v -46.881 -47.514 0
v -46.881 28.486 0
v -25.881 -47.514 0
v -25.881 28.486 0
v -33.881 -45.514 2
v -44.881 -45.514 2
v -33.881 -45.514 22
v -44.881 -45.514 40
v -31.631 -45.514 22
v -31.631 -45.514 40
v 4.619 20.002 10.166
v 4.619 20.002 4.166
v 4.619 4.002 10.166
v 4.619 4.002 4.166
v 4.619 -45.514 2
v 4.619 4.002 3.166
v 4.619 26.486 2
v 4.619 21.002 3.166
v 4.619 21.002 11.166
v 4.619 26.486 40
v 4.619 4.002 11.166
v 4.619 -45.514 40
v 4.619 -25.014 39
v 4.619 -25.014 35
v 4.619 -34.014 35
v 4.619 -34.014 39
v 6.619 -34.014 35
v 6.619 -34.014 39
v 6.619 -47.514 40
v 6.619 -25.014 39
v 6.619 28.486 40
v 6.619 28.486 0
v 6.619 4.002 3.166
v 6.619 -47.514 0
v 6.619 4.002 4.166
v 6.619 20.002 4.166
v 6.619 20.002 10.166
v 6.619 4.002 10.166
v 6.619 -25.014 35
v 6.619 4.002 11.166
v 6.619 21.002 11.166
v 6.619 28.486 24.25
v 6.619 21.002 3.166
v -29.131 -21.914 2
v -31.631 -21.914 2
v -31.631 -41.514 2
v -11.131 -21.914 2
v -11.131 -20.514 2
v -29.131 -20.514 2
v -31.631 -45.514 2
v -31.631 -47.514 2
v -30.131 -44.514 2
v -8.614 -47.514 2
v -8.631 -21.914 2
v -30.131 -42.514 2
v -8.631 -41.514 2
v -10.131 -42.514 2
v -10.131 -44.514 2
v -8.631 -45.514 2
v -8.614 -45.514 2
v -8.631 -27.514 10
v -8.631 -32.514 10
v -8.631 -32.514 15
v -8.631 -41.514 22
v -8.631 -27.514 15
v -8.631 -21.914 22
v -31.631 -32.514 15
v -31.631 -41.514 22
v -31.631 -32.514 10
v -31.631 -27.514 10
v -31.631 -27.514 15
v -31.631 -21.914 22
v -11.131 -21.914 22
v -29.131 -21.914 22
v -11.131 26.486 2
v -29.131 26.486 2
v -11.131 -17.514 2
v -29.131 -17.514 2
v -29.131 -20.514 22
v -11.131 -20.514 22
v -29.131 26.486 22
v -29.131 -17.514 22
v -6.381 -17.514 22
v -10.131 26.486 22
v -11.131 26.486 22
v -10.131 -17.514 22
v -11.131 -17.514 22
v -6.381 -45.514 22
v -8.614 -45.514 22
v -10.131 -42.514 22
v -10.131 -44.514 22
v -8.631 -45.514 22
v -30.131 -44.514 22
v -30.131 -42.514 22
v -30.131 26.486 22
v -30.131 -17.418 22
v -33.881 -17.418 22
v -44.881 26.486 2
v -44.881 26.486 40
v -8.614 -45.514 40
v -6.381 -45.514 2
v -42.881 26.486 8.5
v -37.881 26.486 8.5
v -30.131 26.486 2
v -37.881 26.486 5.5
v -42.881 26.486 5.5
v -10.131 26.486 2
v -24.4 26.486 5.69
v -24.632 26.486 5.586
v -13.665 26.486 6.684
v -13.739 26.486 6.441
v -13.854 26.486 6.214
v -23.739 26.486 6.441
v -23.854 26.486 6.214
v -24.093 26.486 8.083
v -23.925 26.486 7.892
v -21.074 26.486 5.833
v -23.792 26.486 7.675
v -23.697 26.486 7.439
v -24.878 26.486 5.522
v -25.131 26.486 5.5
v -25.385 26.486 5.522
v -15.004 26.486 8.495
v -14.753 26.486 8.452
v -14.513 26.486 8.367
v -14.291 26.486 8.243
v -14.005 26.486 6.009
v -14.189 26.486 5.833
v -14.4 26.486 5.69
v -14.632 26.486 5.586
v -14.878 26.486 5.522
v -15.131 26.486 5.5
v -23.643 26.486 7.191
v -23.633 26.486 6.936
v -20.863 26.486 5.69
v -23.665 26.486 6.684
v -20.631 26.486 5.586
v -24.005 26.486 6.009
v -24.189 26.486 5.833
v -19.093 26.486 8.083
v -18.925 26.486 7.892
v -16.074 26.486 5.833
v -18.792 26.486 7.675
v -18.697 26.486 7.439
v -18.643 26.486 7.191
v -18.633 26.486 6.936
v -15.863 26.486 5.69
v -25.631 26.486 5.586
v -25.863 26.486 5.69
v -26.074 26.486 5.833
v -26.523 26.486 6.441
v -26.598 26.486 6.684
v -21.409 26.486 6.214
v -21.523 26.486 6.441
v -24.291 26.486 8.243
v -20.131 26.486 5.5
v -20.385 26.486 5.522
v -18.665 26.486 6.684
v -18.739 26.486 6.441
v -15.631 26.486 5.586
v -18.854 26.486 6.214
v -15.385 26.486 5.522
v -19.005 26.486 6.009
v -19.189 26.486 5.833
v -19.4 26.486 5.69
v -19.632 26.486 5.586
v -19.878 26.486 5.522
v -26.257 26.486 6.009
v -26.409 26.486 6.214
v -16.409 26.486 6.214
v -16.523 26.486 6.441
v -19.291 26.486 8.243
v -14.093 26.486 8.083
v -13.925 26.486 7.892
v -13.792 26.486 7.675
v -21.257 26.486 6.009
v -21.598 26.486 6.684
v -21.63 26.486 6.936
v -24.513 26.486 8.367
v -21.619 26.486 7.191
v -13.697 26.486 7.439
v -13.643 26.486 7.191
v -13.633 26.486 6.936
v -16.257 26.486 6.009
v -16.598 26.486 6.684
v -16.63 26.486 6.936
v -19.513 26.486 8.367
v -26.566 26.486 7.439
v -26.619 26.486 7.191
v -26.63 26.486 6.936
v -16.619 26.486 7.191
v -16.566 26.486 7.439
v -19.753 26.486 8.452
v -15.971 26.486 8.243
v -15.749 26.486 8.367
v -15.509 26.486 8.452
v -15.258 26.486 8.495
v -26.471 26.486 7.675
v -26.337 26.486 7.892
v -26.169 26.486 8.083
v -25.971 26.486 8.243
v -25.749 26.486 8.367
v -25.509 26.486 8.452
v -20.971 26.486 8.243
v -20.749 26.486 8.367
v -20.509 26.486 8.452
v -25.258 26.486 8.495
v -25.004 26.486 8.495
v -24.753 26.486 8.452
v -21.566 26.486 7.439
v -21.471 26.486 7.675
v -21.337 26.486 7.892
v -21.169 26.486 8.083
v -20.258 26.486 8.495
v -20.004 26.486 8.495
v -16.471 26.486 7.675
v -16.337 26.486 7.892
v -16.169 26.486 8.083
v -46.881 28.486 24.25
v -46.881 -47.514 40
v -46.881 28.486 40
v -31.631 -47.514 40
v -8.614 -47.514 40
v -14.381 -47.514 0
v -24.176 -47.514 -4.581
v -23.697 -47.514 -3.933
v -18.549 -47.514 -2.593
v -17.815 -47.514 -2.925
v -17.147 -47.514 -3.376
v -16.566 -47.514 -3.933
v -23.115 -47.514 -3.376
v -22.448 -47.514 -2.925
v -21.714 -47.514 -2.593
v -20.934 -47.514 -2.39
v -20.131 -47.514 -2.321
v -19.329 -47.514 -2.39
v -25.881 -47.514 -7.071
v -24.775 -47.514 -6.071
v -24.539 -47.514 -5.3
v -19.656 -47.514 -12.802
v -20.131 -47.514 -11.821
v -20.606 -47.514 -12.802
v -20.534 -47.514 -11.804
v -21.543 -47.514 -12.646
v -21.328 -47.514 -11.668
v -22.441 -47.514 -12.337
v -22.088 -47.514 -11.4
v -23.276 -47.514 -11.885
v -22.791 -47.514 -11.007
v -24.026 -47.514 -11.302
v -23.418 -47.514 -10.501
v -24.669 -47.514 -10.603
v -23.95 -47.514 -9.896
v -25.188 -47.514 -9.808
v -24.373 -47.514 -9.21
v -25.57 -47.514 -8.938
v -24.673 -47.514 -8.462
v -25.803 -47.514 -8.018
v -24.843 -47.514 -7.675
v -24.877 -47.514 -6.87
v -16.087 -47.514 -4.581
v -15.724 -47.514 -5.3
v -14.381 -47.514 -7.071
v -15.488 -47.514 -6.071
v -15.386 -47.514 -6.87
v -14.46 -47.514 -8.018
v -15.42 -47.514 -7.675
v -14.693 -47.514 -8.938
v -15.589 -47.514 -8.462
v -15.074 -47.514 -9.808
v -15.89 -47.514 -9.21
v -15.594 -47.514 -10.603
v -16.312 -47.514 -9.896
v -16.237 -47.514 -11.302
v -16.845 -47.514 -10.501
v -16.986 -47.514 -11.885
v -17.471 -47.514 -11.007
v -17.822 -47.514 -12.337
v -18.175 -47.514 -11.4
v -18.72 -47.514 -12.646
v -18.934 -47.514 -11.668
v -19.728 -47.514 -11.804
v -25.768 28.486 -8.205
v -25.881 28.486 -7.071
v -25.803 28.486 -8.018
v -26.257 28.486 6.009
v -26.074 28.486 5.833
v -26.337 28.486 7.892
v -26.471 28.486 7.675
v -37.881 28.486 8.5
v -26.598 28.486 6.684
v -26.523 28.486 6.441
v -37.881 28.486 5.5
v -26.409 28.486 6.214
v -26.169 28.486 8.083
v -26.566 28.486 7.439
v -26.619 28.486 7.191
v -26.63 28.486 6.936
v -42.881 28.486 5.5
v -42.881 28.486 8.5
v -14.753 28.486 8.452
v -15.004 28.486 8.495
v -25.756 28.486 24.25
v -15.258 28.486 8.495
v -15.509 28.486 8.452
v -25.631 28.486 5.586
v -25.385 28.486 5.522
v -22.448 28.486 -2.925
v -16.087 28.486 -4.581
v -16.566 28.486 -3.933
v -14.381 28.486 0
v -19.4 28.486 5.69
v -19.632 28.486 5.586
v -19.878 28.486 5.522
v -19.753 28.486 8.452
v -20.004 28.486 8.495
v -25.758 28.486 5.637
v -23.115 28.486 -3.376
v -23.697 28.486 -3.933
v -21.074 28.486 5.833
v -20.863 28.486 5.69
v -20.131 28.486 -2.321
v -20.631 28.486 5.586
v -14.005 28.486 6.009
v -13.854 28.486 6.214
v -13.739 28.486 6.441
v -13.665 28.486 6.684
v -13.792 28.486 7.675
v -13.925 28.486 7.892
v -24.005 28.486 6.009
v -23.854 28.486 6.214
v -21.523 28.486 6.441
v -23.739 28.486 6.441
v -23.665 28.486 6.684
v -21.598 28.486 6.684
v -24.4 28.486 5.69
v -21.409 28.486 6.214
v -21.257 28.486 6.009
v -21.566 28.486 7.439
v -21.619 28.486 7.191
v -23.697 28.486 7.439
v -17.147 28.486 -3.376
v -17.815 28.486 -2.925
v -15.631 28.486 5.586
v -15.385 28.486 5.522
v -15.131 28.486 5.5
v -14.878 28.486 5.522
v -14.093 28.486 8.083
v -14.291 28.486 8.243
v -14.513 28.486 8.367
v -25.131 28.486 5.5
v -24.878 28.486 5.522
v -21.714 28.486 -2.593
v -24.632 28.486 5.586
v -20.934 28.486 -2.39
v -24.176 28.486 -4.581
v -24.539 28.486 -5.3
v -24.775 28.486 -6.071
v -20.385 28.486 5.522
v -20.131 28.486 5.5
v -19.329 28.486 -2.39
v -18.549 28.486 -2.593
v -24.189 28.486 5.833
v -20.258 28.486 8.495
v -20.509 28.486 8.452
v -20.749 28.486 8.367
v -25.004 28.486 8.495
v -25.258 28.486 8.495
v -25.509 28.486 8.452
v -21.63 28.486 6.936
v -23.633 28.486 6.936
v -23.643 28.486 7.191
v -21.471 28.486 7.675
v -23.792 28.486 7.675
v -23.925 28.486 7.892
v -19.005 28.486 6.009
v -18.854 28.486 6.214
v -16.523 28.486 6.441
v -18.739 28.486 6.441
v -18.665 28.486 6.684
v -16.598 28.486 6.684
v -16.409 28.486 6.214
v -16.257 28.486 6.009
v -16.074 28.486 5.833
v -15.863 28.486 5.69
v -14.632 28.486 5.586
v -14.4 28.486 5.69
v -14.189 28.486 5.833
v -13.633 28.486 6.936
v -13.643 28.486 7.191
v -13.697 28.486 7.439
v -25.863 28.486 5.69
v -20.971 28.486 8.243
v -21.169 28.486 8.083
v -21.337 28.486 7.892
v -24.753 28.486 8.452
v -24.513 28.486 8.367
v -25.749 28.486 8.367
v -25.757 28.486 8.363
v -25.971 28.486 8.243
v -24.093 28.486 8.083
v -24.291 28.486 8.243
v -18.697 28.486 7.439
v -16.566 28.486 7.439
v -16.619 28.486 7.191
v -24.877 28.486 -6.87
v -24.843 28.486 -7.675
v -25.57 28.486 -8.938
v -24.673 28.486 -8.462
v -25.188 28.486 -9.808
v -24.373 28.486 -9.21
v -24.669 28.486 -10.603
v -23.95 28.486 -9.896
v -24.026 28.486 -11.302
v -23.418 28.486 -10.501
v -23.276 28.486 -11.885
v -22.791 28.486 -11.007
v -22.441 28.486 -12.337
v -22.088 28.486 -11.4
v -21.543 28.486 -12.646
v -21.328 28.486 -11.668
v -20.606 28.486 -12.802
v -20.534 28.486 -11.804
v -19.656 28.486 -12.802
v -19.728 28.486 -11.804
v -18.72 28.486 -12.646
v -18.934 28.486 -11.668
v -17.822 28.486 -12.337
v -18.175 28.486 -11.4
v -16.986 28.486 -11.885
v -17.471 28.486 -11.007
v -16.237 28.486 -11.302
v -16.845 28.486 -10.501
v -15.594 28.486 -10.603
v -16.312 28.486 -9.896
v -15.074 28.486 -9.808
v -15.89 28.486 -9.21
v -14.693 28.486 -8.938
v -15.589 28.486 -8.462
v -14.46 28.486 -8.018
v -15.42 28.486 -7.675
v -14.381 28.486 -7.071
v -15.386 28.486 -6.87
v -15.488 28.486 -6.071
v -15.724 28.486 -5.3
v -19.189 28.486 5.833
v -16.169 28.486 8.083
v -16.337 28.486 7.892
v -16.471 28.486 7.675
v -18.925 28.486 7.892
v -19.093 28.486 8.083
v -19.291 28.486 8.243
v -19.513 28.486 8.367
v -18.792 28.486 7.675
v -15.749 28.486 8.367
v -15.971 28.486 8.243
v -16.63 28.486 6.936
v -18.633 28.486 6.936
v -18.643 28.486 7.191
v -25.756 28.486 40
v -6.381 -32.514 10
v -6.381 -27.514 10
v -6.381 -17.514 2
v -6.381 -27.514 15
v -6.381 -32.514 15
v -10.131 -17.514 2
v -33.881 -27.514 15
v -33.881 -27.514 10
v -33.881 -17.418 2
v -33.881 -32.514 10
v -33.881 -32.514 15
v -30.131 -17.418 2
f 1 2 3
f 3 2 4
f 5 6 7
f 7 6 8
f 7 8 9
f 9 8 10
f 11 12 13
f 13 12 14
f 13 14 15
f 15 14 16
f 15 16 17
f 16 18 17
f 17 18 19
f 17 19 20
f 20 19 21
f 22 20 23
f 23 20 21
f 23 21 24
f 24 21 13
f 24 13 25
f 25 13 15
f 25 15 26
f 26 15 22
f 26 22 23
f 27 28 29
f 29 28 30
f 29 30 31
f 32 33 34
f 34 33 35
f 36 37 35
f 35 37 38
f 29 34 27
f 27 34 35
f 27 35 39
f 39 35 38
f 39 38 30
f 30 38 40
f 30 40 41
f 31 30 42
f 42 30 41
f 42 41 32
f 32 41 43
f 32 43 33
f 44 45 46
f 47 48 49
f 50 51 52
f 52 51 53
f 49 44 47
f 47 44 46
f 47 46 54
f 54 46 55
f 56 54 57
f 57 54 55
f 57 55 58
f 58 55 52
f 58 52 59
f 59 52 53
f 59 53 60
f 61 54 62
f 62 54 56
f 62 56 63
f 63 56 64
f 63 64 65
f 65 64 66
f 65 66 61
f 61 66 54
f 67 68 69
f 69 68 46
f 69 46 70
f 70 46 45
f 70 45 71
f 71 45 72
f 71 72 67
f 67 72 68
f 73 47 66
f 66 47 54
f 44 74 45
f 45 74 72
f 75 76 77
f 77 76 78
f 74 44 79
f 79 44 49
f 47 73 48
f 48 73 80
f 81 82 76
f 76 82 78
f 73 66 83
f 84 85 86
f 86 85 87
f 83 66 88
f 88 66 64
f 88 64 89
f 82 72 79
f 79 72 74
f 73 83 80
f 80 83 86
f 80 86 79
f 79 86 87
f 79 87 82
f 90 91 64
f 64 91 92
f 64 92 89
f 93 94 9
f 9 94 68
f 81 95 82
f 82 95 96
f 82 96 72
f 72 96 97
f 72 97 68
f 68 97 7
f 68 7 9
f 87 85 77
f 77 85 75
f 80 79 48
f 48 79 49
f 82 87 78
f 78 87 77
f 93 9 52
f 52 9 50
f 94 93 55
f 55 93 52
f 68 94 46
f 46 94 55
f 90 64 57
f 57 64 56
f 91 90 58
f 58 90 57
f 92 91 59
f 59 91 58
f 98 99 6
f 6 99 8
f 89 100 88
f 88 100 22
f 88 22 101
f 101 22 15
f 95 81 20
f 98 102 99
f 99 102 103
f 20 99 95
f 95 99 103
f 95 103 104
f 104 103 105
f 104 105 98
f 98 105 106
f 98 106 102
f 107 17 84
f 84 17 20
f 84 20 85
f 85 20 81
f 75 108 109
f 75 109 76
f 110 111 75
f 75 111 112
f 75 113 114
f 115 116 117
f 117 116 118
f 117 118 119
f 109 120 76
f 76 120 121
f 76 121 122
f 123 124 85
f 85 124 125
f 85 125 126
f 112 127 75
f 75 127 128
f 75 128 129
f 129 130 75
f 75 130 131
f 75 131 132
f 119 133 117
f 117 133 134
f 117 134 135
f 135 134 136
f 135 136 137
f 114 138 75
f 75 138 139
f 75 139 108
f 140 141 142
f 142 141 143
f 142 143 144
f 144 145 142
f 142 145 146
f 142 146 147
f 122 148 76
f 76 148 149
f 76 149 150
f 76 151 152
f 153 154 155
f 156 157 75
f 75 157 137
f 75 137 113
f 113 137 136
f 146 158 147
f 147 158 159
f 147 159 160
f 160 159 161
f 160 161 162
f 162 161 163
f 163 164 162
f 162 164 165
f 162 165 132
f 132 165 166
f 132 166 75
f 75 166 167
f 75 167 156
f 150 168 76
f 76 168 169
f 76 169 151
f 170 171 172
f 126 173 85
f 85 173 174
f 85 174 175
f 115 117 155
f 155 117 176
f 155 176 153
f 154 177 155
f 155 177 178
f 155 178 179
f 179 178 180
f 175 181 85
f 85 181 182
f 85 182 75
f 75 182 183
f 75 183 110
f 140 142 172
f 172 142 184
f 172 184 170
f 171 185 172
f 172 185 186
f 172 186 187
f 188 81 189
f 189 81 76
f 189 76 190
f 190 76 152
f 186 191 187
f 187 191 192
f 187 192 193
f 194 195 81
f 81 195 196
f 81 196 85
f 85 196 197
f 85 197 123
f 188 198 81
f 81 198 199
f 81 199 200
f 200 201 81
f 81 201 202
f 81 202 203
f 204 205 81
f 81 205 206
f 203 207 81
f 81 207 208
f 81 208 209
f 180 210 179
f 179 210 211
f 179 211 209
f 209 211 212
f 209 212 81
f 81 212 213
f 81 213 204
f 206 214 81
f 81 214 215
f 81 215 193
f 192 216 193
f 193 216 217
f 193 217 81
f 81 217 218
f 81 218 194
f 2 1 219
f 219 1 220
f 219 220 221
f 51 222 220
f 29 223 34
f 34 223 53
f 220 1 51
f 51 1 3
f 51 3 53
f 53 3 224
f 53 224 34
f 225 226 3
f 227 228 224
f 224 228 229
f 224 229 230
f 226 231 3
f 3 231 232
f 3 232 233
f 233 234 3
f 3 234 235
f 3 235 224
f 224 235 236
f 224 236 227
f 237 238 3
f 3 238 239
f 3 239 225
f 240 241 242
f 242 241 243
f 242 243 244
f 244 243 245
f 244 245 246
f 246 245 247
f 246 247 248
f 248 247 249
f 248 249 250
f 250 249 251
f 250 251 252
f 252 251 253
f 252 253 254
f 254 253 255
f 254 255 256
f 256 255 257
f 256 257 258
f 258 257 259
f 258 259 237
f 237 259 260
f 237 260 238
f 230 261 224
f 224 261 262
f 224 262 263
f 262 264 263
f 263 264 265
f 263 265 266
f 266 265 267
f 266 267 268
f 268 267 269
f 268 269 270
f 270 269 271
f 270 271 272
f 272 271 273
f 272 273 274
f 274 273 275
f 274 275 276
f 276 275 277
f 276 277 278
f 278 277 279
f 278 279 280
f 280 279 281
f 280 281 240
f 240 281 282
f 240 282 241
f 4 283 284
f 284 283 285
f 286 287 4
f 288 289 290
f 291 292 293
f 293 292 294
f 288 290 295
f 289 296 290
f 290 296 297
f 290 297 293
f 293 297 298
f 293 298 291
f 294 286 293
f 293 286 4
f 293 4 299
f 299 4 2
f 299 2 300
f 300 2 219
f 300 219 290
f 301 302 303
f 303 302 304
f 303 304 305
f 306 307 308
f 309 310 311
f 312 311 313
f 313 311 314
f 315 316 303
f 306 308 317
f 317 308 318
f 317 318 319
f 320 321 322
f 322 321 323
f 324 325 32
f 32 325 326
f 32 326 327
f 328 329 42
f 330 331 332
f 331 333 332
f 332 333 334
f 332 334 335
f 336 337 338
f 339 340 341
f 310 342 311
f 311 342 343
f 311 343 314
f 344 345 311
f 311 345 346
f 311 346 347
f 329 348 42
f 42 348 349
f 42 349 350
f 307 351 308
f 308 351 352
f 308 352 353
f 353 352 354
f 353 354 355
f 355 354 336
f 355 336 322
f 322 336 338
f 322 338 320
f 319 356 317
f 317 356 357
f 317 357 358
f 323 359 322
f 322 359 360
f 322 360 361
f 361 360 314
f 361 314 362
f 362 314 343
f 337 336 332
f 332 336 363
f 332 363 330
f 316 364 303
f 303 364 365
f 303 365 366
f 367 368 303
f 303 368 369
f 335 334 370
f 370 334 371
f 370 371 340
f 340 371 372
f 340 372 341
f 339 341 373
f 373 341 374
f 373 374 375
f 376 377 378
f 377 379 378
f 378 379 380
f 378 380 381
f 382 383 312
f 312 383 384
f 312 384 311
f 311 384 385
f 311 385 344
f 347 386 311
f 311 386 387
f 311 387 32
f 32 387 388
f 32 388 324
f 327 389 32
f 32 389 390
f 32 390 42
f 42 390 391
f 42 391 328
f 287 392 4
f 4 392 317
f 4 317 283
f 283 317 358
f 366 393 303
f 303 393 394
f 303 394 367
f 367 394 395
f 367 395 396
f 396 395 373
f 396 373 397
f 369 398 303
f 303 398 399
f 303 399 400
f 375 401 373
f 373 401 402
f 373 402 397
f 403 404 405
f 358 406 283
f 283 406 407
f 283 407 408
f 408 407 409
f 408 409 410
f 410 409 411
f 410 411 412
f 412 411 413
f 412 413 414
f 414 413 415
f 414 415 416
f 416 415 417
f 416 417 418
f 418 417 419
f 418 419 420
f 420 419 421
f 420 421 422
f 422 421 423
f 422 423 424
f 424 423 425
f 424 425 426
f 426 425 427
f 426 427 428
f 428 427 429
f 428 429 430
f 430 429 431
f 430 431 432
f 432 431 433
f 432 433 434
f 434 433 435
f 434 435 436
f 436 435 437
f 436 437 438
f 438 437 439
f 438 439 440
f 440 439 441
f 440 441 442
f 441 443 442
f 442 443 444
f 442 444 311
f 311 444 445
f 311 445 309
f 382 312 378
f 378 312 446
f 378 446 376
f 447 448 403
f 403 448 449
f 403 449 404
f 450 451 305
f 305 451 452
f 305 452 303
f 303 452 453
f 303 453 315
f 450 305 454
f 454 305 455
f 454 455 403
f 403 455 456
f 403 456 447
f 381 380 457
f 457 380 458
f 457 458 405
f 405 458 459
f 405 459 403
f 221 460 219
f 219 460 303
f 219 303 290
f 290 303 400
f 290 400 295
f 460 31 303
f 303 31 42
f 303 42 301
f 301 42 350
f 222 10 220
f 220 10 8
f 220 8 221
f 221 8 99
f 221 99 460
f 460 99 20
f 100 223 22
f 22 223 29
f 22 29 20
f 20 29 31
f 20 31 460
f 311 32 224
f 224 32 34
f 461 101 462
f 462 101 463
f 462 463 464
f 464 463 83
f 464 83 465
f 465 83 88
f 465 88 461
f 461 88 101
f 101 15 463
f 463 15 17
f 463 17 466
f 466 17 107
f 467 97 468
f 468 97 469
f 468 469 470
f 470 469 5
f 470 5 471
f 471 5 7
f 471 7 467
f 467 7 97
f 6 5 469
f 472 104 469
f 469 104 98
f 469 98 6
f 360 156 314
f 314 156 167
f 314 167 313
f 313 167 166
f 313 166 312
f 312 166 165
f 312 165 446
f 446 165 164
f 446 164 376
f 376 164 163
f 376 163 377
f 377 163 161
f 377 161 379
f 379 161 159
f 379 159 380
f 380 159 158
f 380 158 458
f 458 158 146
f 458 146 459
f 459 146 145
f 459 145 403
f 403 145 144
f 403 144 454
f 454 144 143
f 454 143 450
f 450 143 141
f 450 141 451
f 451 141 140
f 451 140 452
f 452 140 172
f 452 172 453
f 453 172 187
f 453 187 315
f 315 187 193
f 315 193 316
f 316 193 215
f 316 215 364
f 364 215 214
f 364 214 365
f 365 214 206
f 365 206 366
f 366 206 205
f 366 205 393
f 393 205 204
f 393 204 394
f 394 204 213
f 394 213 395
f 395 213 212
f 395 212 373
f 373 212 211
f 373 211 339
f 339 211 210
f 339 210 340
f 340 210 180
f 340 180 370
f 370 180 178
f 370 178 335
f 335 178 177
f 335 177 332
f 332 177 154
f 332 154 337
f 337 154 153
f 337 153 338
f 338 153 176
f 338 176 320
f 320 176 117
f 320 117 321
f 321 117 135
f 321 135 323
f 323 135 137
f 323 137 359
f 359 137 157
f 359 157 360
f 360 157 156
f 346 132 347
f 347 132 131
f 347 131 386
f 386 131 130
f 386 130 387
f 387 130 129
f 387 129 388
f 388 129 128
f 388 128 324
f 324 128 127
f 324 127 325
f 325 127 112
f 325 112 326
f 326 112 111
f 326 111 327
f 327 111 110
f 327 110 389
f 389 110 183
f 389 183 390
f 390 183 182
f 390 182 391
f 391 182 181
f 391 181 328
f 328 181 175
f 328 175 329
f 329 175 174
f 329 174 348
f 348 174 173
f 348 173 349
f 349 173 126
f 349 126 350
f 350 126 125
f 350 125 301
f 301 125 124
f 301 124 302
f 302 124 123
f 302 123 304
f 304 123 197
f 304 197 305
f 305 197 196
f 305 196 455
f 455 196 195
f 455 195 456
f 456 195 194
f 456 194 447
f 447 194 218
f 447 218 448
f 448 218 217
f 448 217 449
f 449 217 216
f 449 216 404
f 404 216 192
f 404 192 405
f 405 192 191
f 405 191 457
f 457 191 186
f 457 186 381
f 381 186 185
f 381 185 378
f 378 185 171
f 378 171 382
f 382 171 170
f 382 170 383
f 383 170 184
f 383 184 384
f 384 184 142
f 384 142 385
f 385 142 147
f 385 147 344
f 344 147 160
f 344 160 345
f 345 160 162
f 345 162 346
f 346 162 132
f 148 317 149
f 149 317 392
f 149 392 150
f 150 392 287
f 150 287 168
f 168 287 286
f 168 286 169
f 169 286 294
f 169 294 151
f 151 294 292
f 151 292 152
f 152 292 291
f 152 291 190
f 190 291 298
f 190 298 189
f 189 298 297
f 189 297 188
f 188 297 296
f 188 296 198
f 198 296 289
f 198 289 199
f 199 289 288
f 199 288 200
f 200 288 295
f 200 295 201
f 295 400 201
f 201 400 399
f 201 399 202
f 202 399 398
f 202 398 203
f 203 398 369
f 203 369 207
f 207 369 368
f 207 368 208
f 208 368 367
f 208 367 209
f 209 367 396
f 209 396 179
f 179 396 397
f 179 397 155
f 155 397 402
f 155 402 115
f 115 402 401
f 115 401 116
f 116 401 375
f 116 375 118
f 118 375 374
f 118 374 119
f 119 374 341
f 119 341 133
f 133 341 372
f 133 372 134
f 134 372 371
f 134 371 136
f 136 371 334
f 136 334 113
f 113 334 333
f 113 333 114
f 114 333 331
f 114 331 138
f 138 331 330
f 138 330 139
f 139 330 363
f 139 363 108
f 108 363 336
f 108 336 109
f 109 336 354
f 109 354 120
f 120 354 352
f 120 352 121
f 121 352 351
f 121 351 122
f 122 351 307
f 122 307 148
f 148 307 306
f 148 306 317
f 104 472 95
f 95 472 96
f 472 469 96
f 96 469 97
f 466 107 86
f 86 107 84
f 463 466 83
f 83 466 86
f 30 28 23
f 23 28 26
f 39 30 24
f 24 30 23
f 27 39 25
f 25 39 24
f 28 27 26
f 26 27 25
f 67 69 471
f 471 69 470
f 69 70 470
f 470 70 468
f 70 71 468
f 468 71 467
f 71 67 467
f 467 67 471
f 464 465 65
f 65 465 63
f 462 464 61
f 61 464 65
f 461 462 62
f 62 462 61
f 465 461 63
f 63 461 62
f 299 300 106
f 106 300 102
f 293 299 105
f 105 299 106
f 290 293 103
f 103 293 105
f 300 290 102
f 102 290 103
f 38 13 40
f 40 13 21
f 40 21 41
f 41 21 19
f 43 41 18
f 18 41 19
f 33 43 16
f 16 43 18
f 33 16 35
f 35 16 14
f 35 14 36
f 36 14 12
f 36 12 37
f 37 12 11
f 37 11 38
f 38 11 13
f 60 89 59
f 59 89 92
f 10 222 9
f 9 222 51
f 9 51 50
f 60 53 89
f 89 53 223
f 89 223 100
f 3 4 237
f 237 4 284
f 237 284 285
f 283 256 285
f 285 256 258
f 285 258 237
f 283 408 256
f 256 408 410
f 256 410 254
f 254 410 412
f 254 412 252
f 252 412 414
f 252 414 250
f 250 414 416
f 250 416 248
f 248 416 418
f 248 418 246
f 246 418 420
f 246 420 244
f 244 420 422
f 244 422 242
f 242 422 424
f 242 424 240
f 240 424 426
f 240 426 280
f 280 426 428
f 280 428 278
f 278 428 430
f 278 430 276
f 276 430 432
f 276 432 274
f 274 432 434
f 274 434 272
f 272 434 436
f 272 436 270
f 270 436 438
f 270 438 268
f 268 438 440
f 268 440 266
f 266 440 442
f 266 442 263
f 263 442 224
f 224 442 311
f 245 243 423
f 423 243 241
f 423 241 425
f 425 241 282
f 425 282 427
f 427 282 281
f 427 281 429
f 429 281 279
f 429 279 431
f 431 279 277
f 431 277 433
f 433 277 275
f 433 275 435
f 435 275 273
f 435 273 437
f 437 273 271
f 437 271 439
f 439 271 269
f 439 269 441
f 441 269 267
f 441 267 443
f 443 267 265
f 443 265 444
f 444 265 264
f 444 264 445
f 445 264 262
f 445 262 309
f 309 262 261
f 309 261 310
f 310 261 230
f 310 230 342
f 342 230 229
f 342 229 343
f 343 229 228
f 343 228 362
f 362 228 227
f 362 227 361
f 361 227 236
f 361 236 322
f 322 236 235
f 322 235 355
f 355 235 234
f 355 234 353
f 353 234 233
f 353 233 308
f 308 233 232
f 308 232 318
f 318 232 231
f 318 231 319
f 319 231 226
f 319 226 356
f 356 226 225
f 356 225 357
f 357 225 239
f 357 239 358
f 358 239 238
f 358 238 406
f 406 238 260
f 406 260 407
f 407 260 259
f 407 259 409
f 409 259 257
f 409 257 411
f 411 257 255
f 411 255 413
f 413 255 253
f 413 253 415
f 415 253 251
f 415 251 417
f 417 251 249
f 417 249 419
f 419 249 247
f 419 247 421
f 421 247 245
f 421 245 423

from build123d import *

# Parameters (mm, degrees)
SKETCH1_W            = 25.5
SKETCH1_H            = 72
BOSS_EXTRUDE1_DEPTH  = 2
SKETCH2_W            = 3.75
SKETCH2_H            = 5
SKETCH2_H_2          = 4
BOSS_EXTRUDE2_DEPTH  = 20
SKETCH3_W            = 18
SKETCH3_H            = 3
BOSS_EXTRUDE3_DEPTH  = 20
SKETCH4_W            = 3.75
SKETCH4_H            = 39.4
BOSS_EXTRUDE4_DEPTH  = 20
SKETCH9_W            = 1.25
SKETCH9_H            = 23.6
BOSS_EXTRUDE6_DEPTH  = 20
BOSS_EXTRUDE7_DEPTH  = 20
SKETCH15_W           = 12
SKETCH15_H           = 72
BOSS_EXTRUDE8_DEPTH  = 22
SKETCH16_W           = 53.5
SKETCH16_H           = 76
SKETCH16_W_2         = 49.5
SKETCH16_H_2         = 72
BOSS_EXTRUDE9_DEPTH  = 40
SKETCH17_W           = 9
SKETCH17_H           = 68
CUT_EXTRUDE1_DEPTH   = 20
SKETCH276_R          = 1.5
CUT_EXTRUDE2_DEPTH   = 3
CUT_EXTRUDE3_DEPTH   = 20
CUT_EXTRUDE4_REACH   = 55.5
SKETCH283_W          = 4
SKETCH283_H          = 9
CUT_EXTRUDE5_REACH   = 17.25
SKETCH287_W          = 5
SKETCH287_H          = 5
CUT_EXTRUDE6_REACH   = 42.5
SKETCH288_W          = 5
SKETCH288_H          = 5
CUT_EXTRUDE8_REACH   = 78
SKETCH291_W          = 5
SKETCH291_H          = 3
CUT_EXTRUDE9_REACH   = 55.5
CUT_EXTRUDE10_DEPTH  = 38
SKETCH297_R          = 4.75
BOSS_EXTRUDE10_DEPTH = 76


with BuildPart() as part:
    # Sketch1 → Boss-Extrude1 (new body)
    with BuildSketch(Plane.XY):
        with Locations((-20.131274131, -9.514285714)):
            Rectangle(SKETCH1_W, SKETCH1_H)
    extrude(amount=BOSS_EXTRUDE1_DEPTH)

    # Sketch2 → Boss-Extrude2 (add)
    with BuildSketch(Plane.XY.offset(2)):
        with Locations((-31.006274131, 23.985714286)):
            Rectangle(SKETCH2_W, SKETCH2_H)
        with Locations((-31.006274131, -19.914285714)):
            Rectangle(SKETCH2_W, SKETCH2_H_2)
        with Locations((-9.256274131, -19.914285714)):
            Rectangle(SKETCH2_W, SKETCH2_H_2)
        with Locations((-9.256274131, 23.985714286)):
            Rectangle(SKETCH2_W, SKETCH2_H)
    extrude(amount=BOSS_EXTRUDE2_DEPTH)

    # Sketch3 → Boss-Extrude3 (add)
    with BuildSketch(Plane.XY.offset(2)):
        with Locations((-20.131274131, -19.014285714)):
            Rectangle(SKETCH3_W, SKETCH3_H)
    extrude(amount=BOSS_EXTRUDE3_DEPTH)

    # Sketch4 → Boss-Extrude4 (add)
    with BuildSketch(Plane.XY.offset(2)):
        with Locations((-31.006274131, 1.785714286)):
            Rectangle(SKETCH4_W, SKETCH4_H)
        with Locations((-9.256274131, 1.785714286)):
            Rectangle(SKETCH4_W, SKETCH4_H)
    extrude(amount=BOSS_EXTRUDE4_DEPTH)

    # Sketch9 → Boss-Extrude6 (add)
    with BuildSketch(Plane.XY.offset(2)):
        with Locations((-32.256274131, -33.714285714)):
            Rectangle(SKETCH9_W, SKETCH9_H)
        with Locations((-8.006274131, -33.714285714)):
            Rectangle(SKETCH9_W, SKETCH9_H)
    extrude(amount=BOSS_EXTRUDE6_DEPTH)

    # Sketch11 → Boss-Extrude7 (add)
    with BuildSketch(Plane.XY.offset(2)):
        Polygon((-31.631274131, -45.514285714), (-30.131274131, -44.514285714), (-30.131274131, -42.514285714), (-31.631274131, -41.514285714), align=None)
        Polygon((-8.631274131, -45.514285714), (-10.131274131, -44.514285714), (-10.131274131, -42.514285714), (-8.631274131, -41.514285714), align=None)
    extrude(amount=BOSS_EXTRUDE7_DEPTH)

    # Sketch15 → Boss-Extrude8 (add)
    with BuildSketch(Plane(origin=(0, 0, 0), x_dir=(-1, 0, 0), z_dir=(0, 0, -1))):
        with Locations((38.881274131, -9.514285714)):
            Rectangle(SKETCH15_W, SKETCH15_H)
        with Locations((1.381274131, -9.514285714)):
            Rectangle(SKETCH15_W, SKETCH15_H)
    extrude(amount=-BOSS_EXTRUDE8_DEPTH)

    # Sketch16 → Boss-Extrude9 (add)
    with BuildSketch(Plane(origin=(0, 0, 0), x_dir=(-1, 0, 0), z_dir=(0, 0, -1))):
        with Locations((20.131274131, -9.514285714)):
            Rectangle(SKETCH16_W, SKETCH16_H)
        with Locations((20.131274131, -9.514285714)):
            Rectangle(SKETCH16_W_2, SKETCH16_H_2, mode=Mode.SUBTRACT)
    extrude(amount=-BOSS_EXTRUDE9_DEPTH)

    # Sketch17 → Cut-Extrude1 (cut)
    with BuildSketch(Plane.XY.offset(22)):
        with Locations((-38.381274131, -9.514285714)):
            Rectangle(SKETCH17_W, SKETCH17_H)
        with Locations((-1.881274131, -9.514285714)):
            Rectangle(SKETCH17_W, SKETCH17_H)
    extrude(amount=-CUT_EXTRUDE1_DEPTH, mode=Mode.SUBTRACT)

    # Sketch276 → Cut-Extrude2 (cut, through all)
    with BuildSketch(Plane.XZ.offset(-26.485714286)):
        with Locations((-25.131274131, 7)):
            Circle(SKETCH276_R)
        with Locations((-15.131274131, 7)):
            Circle(SKETCH276_R)
        with Locations((-20.131274131, 7)):
            Circle(SKETCH276_R)
    extrude(amount=-CUT_EXTRUDE2_DEPTH, mode=Mode.SUBTRACT)

    # Sketch282 → Cut-Extrude3 (cut)
    with BuildSketch(Plane.XY.offset(22)):
        Polygon((-33.881274131, -17.418411546), (-30.131274131, -17.418411546), (-30.131274131, 26.485714286), (-44.881274131, 26.485714286), (-44.881274131, -45.514285714), (-33.881274131, -45.514285714), align=None)
        Polygon((-10.131274131, 26.485714286), (-10.131274131, -17.514285714), (-6.381274131, -17.514285714), (-6.381274131, -45.514285714), (4.618725869, -45.514285714), (4.618725869, 26.485714286), align=None)
    extrude(amount=-CUT_EXTRUDE3_DEPTH, mode=Mode.SUBTRACT)

    # Sketch283 → Cut-Extrude4 (cut, up to next)
    with BuildSketch(Plane(origin=(6.618725869, 0, 0), x_dir=(0, 0, -1), z_dir=(1, 0, 0)), mode=Mode.PRIVATE) as cut_extrude4_sk1:
        with Locations((-37, -29.514285714)):
            Rectangle(SKETCH283_W, SKETCH283_H)
    cut_extrude4_tool1 = extrude(cut_extrude4_sk1.sketch, amount=-CUT_EXTRUDE4_REACH, mode=Mode.PRIVATE) & part.part
    add(cut_extrude4_tool1.solids().sort_by_distance((6.618726, -29.514286, 37))[0], mode=Mode.SUBTRACT)

    # Sketch287 → Cut-Extrude5 (cut, up to next)
    with BuildSketch(Plane(origin=(-31.631274131, 0, 0), x_dir=(0, 0, -1), z_dir=(1, 0, 0)), mode=Mode.PRIVATE) as cut_extrude5_sk1:
        with Locations((-12.5, -30.014285714)):
            Rectangle(SKETCH287_W, SKETCH287_H)
    cut_extrude5_tool1 = extrude(cut_extrude5_sk1.sketch, amount=-CUT_EXTRUDE5_REACH, mode=Mode.PRIVATE) & part.part
    add(cut_extrude5_tool1.solids().sort_by_distance((-31.631274, -30.014286, 12.5))[0], mode=Mode.SUBTRACT)

    # Sketch288 → Cut-Extrude6 (cut, up to next)
    with BuildSketch(Plane(origin=(-6.381274131, 0, 0), x_dir=(0, 0, -1), z_dir=(1, 0, 0)), mode=Mode.PRIVATE) as cut_extrude6_sk1:
        with Locations((-12.5, -30.014285714)):
            Rectangle(SKETCH288_W, SKETCH288_H)
    cut_extrude6_tool1 = extrude(cut_extrude6_sk1.sketch, amount=-CUT_EXTRUDE6_REACH, mode=Mode.PRIVATE) & part.part
    add(cut_extrude6_tool1.solids().sort_by_distance((-6.381274, -30.014286, 12.5))[0], mode=Mode.SUBTRACT)

    # Sketch291 → Cut-Extrude8 (cut, up to next)
    with BuildSketch(Plane(origin=(0, 28.485714286, 0), x_dir=(1, 0, 0), z_dir=(0, 1, 0)), mode=Mode.PRIVATE) as cut_extrude8_sk1:
        with Locations((-40.381274131, -7)):
            Rectangle(SKETCH291_W, SKETCH291_H)
    cut_extrude8_tool1 = extrude(cut_extrude8_sk1.sketch, amount=-CUT_EXTRUDE8_REACH, mode=Mode.PRIVATE) & part.part
    add(cut_extrude8_tool1.solids().sort_by_distance((-40.381274, 28.485714, 7))[0], mode=Mode.SUBTRACT)

    # Sketch292 → Cut-Extrude9 (cut, up to next)
    with BuildSketch(Plane(origin=(6.618725869, 0, 0), x_dir=(0, 0, -1), z_dir=(1, 0, 0)), mode=Mode.PRIVATE) as cut_extrude9_sk1:
        Polygon((-10.165543533, 4.001752047), (-11.165543533, 4.001752047), (-11.165543533, 21.001752047), (-3.165543533, 21.001752047), (-3.165543533, 4.001752047), (-4.165543533, 4.001752047), (-4.165543533, 5.001752047), (-4.165543533, 20.001752047), (-10.165543533, 20.001752047), (-10.165543533, 5.001752047), align=None)
    cut_extrude9_tool1 = extrude(cut_extrude9_sk1.sketch, amount=-CUT_EXTRUDE9_REACH, mode=Mode.PRIVATE) & part.part
    add(cut_extrude9_tool1.solids().sort_by_distance((6.618726, 4.189635, 10.665544))[0], mode=Mode.SUBTRACT)

    # Sketch295 → Cut-Extrude10 (cut)
    with BuildSketch(Plane.XY.offset(40)):
        Polygon((-31.631274131, -47.514285714), (-8.614465399, -47.514285714), (-8.614465399, -45.514285714), (-8.631274131, -45.514285714), (-31.631274131, -45.514285714), align=None)
    extrude(amount=-CUT_EXTRUDE10_DEPTH, mode=Mode.SUBTRACT)

    # Sketch297 → Boss-Extrude10 (add)
    with BuildSketch(Plane(origin=(0, 28.485714286, 0), x_dir=(1, 0, 0), z_dir=(0, 1, 0))):
        with BuildLine():
            Line((-25.881274131, 0), (-14.381274131, 0))
            Line((-14.381274131, 0), (-14.381274131, 7.071463376))
            ThreePointArc((-14.381274131, 7.071463376), (-20.131274131, 12.821463376), (-25.881274131, 7.071463376))
            Line((-25.881274131, 7.071463376), (-25.881274131, 0))
        make_face()
        with Locations((-20.131274131, 7.071463376)):
            Circle(SKETCH297_R, mode=Mode.SUBTRACT)
    extrude(amount=-BOSS_EXTRUDE10_DEPTH)


solid = part.part
